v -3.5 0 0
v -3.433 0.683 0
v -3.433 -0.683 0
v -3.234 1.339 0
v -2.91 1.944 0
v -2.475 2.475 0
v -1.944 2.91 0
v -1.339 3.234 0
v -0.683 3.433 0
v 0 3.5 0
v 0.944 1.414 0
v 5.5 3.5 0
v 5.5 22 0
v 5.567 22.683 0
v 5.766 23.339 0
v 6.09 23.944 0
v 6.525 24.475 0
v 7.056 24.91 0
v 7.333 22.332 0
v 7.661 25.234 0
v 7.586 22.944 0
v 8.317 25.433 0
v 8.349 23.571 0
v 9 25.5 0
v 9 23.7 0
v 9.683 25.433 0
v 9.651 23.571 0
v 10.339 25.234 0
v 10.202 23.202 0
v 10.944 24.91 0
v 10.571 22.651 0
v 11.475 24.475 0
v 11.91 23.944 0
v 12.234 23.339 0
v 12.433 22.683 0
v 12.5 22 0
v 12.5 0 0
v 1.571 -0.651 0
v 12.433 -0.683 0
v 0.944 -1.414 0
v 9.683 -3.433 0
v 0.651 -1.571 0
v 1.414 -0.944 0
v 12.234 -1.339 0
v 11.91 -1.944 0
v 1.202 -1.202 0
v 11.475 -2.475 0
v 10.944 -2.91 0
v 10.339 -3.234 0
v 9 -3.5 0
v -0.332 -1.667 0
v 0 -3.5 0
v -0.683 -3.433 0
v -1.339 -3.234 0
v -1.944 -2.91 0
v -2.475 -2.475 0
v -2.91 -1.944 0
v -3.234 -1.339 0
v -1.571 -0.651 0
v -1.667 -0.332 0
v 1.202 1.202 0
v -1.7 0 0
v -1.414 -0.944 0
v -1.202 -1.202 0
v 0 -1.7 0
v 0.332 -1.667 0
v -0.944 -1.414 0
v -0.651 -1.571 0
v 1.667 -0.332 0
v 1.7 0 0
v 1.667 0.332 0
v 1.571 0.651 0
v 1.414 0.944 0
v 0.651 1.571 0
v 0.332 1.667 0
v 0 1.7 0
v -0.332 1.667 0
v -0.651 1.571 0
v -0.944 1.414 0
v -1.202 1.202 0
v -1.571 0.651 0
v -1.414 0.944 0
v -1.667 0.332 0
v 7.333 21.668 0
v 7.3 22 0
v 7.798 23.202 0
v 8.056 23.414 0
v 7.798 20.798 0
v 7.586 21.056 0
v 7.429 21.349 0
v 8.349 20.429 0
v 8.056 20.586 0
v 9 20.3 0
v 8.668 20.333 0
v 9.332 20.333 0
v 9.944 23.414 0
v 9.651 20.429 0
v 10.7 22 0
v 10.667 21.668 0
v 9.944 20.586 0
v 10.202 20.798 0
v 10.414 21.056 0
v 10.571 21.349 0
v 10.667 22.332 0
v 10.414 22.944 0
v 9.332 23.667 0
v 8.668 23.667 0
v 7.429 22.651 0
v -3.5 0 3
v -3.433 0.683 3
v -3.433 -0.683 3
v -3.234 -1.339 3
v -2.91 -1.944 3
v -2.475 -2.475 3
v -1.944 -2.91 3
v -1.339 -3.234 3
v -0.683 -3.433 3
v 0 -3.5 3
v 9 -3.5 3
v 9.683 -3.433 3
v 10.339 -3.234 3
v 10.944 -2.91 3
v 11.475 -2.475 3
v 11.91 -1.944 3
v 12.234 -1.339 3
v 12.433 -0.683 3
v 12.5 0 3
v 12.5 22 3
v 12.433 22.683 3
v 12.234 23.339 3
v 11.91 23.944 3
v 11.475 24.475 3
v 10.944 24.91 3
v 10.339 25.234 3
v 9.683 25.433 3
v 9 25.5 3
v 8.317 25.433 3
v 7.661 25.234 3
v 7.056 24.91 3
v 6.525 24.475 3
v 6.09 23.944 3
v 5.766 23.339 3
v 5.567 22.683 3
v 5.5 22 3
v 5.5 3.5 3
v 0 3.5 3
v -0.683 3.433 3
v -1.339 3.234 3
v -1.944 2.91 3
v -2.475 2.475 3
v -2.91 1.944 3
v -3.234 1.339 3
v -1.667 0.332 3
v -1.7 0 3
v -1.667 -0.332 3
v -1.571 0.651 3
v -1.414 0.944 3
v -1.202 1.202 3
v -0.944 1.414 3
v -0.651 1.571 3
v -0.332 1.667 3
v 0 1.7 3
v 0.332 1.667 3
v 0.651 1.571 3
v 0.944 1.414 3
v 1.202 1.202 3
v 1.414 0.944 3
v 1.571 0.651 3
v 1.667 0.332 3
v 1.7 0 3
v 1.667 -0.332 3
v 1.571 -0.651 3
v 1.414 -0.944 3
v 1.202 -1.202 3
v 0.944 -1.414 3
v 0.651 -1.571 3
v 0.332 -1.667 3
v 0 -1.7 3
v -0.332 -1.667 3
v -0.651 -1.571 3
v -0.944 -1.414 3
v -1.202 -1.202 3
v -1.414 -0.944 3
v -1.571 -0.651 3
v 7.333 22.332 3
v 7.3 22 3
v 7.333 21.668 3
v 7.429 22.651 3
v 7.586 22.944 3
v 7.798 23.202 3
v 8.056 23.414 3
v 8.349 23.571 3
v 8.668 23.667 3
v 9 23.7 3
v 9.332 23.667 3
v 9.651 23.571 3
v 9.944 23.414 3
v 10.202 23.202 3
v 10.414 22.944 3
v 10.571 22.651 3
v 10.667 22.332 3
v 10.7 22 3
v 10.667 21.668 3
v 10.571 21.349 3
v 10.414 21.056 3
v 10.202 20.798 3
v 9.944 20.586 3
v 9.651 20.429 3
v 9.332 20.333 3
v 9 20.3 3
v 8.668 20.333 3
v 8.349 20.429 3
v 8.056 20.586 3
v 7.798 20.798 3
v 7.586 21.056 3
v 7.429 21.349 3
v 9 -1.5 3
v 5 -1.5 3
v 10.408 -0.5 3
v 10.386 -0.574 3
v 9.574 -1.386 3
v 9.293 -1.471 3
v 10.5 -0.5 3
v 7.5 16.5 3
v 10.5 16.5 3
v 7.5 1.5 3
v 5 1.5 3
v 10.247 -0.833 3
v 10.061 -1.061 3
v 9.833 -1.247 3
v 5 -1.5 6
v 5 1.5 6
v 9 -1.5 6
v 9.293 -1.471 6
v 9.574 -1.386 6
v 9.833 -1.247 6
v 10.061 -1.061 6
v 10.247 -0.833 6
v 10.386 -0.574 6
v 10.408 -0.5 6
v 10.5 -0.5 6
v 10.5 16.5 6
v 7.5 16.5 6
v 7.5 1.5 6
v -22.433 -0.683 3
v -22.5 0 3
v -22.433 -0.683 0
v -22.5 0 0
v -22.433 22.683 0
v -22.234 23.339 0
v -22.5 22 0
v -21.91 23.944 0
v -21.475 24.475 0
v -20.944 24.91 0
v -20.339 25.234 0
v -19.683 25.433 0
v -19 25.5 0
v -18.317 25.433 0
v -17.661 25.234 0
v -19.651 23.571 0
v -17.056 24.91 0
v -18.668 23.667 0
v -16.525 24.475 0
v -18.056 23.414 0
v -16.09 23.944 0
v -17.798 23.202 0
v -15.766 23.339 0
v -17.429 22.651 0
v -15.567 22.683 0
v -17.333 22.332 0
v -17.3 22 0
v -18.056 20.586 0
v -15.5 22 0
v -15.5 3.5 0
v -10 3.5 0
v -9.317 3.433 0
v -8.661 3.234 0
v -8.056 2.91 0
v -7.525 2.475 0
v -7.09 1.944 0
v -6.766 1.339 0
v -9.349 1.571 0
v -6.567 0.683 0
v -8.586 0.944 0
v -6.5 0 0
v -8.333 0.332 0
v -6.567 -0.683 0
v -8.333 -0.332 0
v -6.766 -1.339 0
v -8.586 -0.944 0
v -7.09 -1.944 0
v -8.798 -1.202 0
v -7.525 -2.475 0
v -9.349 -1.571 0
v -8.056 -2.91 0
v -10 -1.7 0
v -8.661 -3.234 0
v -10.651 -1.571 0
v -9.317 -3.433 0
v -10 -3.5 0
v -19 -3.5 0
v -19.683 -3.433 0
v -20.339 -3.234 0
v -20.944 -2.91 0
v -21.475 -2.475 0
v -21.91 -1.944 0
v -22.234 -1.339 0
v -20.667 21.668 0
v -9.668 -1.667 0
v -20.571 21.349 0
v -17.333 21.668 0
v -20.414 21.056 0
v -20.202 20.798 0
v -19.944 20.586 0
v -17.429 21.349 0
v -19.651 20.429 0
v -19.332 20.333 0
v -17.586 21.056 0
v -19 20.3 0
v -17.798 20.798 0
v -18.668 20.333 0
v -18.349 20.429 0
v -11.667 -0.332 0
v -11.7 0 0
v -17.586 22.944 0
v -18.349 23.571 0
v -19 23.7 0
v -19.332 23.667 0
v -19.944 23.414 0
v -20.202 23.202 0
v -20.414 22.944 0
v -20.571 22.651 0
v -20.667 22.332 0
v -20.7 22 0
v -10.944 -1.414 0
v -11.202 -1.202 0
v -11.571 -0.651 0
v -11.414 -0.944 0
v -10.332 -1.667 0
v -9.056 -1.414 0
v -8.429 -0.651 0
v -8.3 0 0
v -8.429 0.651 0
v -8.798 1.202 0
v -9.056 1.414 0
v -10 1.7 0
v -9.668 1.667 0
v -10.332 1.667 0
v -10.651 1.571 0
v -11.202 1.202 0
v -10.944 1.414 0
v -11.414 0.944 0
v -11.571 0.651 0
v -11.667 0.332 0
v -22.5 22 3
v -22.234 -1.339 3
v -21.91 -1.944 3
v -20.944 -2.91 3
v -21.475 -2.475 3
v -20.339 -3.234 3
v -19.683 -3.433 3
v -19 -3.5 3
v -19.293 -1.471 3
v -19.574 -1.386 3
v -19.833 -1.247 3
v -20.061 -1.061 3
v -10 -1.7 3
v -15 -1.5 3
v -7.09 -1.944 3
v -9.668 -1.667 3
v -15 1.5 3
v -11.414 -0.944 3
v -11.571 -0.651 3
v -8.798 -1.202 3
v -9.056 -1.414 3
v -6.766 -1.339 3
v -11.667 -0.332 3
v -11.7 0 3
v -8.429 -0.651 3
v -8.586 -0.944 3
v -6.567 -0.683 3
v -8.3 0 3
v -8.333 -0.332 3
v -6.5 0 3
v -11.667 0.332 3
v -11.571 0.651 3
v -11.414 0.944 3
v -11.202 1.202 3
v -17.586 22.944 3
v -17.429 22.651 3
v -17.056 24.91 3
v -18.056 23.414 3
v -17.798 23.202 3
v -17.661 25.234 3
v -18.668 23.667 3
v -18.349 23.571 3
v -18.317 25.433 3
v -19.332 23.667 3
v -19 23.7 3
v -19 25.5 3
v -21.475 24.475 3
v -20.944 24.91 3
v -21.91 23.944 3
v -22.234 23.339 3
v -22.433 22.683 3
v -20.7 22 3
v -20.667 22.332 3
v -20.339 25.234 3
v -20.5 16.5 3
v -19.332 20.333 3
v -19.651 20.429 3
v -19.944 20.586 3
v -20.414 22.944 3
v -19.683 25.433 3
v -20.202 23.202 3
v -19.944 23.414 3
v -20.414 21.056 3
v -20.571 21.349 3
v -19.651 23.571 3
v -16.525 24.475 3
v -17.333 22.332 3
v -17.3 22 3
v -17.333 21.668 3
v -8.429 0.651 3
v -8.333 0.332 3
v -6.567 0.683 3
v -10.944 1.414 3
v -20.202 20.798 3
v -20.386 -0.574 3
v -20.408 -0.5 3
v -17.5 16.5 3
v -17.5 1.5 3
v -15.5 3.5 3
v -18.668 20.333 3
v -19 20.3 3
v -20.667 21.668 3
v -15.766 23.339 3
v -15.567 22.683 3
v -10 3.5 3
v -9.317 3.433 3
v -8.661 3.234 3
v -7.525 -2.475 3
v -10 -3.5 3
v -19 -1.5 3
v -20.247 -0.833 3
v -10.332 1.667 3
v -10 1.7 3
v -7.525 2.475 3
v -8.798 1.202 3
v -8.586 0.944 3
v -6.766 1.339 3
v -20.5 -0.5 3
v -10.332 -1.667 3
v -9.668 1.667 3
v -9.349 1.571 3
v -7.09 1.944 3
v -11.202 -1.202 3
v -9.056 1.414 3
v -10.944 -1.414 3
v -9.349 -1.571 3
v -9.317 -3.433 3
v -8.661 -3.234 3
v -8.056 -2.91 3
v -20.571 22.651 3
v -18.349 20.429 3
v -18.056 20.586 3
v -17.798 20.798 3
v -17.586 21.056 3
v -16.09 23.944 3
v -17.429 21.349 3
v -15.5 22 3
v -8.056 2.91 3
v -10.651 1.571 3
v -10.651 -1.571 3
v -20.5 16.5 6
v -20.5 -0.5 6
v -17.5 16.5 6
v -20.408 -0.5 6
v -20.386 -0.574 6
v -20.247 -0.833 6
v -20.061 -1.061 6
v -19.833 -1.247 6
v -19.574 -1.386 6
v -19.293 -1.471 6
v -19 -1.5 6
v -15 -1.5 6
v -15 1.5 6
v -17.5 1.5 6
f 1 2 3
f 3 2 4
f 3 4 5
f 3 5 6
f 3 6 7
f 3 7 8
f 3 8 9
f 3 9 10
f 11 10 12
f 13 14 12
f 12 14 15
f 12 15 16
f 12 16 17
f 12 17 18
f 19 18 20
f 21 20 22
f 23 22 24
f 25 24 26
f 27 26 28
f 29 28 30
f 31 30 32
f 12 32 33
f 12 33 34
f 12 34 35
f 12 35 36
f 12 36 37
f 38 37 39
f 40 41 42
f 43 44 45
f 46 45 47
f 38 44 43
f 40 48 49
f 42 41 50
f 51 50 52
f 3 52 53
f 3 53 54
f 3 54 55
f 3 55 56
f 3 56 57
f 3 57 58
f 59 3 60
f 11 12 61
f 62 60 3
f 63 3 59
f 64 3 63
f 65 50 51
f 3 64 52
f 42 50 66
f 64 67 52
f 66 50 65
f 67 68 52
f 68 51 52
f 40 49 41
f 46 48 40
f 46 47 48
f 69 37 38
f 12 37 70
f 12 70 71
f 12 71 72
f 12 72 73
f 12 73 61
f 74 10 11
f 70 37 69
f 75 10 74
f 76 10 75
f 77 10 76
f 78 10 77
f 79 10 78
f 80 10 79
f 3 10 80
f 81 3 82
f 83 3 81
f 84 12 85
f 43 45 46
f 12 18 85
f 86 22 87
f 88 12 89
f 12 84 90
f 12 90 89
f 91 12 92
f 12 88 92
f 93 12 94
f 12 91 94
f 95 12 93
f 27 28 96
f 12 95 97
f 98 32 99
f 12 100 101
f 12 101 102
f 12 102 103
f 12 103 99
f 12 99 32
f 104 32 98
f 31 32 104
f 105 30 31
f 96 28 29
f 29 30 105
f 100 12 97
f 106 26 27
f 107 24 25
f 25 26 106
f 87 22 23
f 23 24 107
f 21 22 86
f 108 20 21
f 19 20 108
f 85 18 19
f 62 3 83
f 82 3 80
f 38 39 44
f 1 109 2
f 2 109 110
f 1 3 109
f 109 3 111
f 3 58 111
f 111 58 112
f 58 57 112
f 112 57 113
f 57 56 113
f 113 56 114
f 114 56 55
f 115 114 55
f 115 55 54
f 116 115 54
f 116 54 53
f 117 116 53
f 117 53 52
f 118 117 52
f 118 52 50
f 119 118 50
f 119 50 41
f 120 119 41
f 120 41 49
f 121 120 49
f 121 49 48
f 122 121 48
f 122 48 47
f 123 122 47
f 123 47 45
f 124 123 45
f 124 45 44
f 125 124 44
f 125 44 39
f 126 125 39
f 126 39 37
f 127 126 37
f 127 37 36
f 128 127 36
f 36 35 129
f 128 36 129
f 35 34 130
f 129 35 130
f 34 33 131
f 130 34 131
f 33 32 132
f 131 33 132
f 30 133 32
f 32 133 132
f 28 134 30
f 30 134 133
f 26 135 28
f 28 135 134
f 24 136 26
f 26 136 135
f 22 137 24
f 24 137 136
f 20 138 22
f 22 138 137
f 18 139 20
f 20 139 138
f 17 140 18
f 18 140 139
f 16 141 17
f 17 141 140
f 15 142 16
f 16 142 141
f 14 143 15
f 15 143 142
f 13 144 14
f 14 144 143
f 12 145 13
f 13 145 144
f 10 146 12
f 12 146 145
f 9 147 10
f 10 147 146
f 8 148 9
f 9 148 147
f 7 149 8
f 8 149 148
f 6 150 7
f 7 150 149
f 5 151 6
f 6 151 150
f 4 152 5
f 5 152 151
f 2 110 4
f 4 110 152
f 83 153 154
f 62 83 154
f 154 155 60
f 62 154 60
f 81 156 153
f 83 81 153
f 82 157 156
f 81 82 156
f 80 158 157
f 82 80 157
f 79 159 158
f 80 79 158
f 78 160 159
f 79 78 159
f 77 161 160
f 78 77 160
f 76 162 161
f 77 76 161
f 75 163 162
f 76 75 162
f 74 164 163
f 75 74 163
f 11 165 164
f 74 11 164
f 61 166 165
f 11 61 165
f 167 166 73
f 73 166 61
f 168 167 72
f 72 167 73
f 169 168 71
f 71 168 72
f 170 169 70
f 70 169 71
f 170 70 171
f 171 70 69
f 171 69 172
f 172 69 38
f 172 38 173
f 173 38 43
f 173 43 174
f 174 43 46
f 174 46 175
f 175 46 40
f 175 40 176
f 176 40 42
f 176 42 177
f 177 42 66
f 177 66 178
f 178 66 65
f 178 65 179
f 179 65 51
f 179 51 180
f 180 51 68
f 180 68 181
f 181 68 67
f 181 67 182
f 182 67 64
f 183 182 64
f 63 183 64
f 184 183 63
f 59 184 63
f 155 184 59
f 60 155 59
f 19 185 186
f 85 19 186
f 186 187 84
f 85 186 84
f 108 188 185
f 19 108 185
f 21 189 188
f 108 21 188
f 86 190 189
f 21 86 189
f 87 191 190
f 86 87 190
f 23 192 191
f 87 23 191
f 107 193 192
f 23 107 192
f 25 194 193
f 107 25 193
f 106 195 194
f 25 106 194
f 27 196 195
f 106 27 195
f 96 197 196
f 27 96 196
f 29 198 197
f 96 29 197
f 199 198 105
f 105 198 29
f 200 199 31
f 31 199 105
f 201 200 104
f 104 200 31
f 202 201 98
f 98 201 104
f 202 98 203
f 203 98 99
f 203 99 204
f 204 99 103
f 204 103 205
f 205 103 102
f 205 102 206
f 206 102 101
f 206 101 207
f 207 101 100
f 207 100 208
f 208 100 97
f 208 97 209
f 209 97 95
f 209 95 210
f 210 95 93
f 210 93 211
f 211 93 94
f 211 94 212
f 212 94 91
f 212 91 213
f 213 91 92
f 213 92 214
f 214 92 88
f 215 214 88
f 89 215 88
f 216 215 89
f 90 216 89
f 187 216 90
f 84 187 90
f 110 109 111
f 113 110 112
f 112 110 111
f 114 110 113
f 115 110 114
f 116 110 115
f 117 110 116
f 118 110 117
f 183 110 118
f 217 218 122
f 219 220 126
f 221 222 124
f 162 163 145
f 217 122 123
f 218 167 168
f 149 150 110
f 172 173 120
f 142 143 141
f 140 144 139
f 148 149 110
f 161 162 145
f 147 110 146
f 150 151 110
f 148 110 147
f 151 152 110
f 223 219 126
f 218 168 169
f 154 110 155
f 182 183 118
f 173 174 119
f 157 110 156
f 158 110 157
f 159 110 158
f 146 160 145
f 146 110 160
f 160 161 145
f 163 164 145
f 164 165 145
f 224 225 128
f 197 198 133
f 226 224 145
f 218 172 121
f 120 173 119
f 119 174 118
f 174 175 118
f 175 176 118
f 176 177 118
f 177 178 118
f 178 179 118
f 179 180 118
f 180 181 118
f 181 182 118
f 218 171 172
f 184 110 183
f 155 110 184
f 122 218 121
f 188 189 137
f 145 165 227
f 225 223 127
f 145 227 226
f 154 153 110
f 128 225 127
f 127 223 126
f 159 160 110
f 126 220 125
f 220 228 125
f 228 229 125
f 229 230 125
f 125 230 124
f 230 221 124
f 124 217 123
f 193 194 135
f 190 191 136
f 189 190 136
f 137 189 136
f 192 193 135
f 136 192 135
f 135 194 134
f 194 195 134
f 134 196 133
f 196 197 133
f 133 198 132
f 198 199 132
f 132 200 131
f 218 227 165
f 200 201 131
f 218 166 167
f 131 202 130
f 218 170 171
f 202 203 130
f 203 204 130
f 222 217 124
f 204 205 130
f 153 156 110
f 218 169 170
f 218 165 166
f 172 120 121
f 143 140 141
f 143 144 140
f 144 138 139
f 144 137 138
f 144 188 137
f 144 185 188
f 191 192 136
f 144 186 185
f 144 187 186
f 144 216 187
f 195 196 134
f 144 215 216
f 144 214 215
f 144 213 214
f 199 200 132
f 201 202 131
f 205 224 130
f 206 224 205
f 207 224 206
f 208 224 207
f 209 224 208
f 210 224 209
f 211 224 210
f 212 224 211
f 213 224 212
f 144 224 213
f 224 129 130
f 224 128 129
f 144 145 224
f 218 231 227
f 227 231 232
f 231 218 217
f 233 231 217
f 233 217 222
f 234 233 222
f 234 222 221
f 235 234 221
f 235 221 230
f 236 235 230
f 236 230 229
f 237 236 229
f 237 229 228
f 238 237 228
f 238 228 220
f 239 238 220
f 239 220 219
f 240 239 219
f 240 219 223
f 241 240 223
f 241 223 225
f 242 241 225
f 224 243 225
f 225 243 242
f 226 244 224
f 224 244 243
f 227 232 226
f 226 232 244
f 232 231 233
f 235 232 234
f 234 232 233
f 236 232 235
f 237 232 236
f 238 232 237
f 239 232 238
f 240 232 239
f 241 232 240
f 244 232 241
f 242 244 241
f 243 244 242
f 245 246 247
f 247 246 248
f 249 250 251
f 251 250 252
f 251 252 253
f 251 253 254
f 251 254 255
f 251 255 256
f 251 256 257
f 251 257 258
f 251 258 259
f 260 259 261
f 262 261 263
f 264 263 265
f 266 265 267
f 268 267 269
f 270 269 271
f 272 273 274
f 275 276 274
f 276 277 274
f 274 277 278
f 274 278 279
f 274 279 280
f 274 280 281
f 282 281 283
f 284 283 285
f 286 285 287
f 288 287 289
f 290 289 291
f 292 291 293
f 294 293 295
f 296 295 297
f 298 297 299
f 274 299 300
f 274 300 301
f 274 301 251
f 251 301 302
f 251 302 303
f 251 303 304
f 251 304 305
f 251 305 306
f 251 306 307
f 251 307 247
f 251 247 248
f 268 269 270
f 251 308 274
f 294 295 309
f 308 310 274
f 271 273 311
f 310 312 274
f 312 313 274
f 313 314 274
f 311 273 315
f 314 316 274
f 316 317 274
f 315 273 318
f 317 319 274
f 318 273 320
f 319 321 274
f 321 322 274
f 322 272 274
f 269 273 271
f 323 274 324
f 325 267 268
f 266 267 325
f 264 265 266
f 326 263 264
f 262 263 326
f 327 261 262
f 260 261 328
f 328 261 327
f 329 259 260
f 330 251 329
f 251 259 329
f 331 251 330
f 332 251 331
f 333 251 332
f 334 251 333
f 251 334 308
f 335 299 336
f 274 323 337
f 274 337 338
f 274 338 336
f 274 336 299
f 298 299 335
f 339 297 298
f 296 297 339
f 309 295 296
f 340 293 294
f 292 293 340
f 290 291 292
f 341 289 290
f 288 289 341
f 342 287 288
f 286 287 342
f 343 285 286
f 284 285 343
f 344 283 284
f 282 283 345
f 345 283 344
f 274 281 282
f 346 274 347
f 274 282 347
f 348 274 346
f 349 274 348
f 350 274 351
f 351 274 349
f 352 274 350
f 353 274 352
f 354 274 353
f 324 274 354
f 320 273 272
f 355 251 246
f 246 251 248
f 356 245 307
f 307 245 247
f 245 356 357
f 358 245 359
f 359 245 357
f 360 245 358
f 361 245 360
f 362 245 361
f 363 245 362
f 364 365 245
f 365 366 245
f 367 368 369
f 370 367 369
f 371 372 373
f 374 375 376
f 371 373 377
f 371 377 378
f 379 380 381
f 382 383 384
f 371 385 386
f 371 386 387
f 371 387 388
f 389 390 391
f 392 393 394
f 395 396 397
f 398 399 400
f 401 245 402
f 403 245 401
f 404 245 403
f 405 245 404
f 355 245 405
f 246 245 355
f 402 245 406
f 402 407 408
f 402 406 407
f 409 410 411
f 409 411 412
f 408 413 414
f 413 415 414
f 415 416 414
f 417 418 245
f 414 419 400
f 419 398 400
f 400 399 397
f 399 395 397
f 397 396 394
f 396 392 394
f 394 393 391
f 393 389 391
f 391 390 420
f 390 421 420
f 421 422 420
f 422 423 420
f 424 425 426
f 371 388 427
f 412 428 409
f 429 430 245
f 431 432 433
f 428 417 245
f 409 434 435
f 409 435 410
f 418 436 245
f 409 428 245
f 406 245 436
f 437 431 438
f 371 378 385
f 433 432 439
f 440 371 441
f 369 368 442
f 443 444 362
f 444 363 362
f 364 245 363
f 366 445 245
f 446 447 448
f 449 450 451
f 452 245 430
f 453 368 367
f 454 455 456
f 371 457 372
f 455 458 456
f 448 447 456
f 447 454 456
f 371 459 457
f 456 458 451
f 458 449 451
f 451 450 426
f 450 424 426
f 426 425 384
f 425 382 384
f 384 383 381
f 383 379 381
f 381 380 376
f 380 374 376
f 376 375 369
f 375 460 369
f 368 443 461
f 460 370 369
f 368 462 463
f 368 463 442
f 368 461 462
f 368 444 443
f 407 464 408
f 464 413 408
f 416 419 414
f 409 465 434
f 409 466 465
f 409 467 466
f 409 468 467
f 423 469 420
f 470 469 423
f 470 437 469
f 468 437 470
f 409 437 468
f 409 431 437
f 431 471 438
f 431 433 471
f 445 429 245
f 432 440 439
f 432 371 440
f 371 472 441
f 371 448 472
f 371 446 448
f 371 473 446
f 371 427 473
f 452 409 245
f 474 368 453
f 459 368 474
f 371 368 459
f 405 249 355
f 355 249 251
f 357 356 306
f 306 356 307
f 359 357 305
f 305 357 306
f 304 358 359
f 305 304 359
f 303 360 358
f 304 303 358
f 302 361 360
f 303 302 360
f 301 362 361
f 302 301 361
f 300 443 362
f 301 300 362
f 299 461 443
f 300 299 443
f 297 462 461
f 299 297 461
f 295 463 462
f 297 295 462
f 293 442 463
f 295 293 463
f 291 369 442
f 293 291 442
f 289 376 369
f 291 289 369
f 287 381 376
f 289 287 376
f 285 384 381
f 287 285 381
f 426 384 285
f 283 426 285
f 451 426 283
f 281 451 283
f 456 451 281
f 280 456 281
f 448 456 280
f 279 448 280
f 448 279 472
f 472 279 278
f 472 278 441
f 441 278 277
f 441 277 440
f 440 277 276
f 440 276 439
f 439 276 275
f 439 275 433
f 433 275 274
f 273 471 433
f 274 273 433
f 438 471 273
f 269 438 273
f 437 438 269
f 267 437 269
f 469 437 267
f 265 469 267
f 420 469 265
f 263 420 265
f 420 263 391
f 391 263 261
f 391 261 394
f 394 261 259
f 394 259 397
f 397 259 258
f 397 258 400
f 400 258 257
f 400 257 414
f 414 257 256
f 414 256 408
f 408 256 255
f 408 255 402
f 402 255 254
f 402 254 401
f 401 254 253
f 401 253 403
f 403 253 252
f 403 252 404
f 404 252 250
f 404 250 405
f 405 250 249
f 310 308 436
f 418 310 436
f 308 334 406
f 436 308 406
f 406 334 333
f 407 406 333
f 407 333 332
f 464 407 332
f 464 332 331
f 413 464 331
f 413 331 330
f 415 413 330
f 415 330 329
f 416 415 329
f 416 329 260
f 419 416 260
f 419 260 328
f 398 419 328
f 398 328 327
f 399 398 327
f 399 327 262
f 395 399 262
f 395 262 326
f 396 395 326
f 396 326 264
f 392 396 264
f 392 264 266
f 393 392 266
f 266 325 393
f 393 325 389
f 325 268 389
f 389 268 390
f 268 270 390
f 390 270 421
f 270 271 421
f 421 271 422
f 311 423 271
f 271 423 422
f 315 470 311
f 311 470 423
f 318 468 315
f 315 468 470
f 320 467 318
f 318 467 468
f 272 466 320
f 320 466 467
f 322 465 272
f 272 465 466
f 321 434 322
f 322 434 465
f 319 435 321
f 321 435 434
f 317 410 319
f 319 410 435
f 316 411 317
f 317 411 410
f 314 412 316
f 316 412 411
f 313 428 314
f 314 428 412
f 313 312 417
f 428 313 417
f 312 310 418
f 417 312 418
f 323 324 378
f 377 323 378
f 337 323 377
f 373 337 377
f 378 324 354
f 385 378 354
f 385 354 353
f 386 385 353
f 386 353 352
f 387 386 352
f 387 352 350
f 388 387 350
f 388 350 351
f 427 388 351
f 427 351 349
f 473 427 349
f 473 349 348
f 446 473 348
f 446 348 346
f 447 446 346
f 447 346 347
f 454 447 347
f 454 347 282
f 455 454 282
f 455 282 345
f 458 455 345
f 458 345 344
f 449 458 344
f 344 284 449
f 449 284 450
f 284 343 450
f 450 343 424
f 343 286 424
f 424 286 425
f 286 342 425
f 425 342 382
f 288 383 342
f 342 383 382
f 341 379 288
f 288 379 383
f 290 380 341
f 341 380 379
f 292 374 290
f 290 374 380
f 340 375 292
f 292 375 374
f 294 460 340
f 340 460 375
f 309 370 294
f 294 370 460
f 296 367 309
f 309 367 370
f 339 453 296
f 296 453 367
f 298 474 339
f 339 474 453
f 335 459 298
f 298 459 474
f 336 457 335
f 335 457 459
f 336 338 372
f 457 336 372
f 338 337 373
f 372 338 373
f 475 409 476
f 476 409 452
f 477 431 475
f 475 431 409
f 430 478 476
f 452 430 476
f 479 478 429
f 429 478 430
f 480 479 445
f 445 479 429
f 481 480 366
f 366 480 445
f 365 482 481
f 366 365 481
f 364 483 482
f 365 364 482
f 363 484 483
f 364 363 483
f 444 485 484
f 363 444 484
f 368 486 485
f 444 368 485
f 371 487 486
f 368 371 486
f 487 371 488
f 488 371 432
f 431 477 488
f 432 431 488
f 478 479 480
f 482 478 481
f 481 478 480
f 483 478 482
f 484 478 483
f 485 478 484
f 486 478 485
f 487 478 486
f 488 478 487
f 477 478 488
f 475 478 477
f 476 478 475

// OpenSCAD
//-- arm1curved.scad by AndrewBCN - November 2014
//-- remix of thing #154834
//-- replaces Brazo.stl with slightly stronger part
//-- and with source file.
//-- GPL V3

arm_th=3;
len1=9;
len2=20+2;
arm_wi=7;
$fn=32;

//-- this arm variant is curved 90 degrees - useful in some cases

module arm() {
  difference() {
    // arm
    union() {
      // arm straight blocks
      translate([len1/2,0,arm_th/2]) cube([len1,arm_wi,arm_th], center=true);
      translate([len1,len2/2,arm_th/2]) cube([arm_wi,len2,arm_th], center=true);
      // this is the small reinforcement in the middle
      translate([len1-2,0,1.5*arm_th]) cube([len1-5,arm_th,arm_th], center=true);
      translate([len1,len2/2-3,1.5*arm_th]) cube([arm_th,len2-5,arm_th], center=true);
      // the two rounded ends and the rounded corner
      translate([0,0,arm_th/2]) cylinder(r=arm_wi/2, h=arm_th, center=true);
      translate([len1,0,arm_th/2]) cylinder(r=arm_wi/2, h=arm_th, center=true);
      translate([len1,len2,arm_th/2]) cylinder(r=arm_wi/2, h=arm_th, center=true);
      // reinforcement rounded corner
      translate([len1,0,1.5*arm_th]) cylinder(r=arm_th/2, h=arm_th, center=true);
    }
    // holes
    cylinder(r=3.4/2, h=3*arm_th, center=true);
    translate([9,len2,0]) cylinder(r=3.4/2, h=3*arm_th, center=true);
  }
}

// build two mirrored copies
arm();
translate([-10,0,0]) mirror([1,0,0]) arm();
